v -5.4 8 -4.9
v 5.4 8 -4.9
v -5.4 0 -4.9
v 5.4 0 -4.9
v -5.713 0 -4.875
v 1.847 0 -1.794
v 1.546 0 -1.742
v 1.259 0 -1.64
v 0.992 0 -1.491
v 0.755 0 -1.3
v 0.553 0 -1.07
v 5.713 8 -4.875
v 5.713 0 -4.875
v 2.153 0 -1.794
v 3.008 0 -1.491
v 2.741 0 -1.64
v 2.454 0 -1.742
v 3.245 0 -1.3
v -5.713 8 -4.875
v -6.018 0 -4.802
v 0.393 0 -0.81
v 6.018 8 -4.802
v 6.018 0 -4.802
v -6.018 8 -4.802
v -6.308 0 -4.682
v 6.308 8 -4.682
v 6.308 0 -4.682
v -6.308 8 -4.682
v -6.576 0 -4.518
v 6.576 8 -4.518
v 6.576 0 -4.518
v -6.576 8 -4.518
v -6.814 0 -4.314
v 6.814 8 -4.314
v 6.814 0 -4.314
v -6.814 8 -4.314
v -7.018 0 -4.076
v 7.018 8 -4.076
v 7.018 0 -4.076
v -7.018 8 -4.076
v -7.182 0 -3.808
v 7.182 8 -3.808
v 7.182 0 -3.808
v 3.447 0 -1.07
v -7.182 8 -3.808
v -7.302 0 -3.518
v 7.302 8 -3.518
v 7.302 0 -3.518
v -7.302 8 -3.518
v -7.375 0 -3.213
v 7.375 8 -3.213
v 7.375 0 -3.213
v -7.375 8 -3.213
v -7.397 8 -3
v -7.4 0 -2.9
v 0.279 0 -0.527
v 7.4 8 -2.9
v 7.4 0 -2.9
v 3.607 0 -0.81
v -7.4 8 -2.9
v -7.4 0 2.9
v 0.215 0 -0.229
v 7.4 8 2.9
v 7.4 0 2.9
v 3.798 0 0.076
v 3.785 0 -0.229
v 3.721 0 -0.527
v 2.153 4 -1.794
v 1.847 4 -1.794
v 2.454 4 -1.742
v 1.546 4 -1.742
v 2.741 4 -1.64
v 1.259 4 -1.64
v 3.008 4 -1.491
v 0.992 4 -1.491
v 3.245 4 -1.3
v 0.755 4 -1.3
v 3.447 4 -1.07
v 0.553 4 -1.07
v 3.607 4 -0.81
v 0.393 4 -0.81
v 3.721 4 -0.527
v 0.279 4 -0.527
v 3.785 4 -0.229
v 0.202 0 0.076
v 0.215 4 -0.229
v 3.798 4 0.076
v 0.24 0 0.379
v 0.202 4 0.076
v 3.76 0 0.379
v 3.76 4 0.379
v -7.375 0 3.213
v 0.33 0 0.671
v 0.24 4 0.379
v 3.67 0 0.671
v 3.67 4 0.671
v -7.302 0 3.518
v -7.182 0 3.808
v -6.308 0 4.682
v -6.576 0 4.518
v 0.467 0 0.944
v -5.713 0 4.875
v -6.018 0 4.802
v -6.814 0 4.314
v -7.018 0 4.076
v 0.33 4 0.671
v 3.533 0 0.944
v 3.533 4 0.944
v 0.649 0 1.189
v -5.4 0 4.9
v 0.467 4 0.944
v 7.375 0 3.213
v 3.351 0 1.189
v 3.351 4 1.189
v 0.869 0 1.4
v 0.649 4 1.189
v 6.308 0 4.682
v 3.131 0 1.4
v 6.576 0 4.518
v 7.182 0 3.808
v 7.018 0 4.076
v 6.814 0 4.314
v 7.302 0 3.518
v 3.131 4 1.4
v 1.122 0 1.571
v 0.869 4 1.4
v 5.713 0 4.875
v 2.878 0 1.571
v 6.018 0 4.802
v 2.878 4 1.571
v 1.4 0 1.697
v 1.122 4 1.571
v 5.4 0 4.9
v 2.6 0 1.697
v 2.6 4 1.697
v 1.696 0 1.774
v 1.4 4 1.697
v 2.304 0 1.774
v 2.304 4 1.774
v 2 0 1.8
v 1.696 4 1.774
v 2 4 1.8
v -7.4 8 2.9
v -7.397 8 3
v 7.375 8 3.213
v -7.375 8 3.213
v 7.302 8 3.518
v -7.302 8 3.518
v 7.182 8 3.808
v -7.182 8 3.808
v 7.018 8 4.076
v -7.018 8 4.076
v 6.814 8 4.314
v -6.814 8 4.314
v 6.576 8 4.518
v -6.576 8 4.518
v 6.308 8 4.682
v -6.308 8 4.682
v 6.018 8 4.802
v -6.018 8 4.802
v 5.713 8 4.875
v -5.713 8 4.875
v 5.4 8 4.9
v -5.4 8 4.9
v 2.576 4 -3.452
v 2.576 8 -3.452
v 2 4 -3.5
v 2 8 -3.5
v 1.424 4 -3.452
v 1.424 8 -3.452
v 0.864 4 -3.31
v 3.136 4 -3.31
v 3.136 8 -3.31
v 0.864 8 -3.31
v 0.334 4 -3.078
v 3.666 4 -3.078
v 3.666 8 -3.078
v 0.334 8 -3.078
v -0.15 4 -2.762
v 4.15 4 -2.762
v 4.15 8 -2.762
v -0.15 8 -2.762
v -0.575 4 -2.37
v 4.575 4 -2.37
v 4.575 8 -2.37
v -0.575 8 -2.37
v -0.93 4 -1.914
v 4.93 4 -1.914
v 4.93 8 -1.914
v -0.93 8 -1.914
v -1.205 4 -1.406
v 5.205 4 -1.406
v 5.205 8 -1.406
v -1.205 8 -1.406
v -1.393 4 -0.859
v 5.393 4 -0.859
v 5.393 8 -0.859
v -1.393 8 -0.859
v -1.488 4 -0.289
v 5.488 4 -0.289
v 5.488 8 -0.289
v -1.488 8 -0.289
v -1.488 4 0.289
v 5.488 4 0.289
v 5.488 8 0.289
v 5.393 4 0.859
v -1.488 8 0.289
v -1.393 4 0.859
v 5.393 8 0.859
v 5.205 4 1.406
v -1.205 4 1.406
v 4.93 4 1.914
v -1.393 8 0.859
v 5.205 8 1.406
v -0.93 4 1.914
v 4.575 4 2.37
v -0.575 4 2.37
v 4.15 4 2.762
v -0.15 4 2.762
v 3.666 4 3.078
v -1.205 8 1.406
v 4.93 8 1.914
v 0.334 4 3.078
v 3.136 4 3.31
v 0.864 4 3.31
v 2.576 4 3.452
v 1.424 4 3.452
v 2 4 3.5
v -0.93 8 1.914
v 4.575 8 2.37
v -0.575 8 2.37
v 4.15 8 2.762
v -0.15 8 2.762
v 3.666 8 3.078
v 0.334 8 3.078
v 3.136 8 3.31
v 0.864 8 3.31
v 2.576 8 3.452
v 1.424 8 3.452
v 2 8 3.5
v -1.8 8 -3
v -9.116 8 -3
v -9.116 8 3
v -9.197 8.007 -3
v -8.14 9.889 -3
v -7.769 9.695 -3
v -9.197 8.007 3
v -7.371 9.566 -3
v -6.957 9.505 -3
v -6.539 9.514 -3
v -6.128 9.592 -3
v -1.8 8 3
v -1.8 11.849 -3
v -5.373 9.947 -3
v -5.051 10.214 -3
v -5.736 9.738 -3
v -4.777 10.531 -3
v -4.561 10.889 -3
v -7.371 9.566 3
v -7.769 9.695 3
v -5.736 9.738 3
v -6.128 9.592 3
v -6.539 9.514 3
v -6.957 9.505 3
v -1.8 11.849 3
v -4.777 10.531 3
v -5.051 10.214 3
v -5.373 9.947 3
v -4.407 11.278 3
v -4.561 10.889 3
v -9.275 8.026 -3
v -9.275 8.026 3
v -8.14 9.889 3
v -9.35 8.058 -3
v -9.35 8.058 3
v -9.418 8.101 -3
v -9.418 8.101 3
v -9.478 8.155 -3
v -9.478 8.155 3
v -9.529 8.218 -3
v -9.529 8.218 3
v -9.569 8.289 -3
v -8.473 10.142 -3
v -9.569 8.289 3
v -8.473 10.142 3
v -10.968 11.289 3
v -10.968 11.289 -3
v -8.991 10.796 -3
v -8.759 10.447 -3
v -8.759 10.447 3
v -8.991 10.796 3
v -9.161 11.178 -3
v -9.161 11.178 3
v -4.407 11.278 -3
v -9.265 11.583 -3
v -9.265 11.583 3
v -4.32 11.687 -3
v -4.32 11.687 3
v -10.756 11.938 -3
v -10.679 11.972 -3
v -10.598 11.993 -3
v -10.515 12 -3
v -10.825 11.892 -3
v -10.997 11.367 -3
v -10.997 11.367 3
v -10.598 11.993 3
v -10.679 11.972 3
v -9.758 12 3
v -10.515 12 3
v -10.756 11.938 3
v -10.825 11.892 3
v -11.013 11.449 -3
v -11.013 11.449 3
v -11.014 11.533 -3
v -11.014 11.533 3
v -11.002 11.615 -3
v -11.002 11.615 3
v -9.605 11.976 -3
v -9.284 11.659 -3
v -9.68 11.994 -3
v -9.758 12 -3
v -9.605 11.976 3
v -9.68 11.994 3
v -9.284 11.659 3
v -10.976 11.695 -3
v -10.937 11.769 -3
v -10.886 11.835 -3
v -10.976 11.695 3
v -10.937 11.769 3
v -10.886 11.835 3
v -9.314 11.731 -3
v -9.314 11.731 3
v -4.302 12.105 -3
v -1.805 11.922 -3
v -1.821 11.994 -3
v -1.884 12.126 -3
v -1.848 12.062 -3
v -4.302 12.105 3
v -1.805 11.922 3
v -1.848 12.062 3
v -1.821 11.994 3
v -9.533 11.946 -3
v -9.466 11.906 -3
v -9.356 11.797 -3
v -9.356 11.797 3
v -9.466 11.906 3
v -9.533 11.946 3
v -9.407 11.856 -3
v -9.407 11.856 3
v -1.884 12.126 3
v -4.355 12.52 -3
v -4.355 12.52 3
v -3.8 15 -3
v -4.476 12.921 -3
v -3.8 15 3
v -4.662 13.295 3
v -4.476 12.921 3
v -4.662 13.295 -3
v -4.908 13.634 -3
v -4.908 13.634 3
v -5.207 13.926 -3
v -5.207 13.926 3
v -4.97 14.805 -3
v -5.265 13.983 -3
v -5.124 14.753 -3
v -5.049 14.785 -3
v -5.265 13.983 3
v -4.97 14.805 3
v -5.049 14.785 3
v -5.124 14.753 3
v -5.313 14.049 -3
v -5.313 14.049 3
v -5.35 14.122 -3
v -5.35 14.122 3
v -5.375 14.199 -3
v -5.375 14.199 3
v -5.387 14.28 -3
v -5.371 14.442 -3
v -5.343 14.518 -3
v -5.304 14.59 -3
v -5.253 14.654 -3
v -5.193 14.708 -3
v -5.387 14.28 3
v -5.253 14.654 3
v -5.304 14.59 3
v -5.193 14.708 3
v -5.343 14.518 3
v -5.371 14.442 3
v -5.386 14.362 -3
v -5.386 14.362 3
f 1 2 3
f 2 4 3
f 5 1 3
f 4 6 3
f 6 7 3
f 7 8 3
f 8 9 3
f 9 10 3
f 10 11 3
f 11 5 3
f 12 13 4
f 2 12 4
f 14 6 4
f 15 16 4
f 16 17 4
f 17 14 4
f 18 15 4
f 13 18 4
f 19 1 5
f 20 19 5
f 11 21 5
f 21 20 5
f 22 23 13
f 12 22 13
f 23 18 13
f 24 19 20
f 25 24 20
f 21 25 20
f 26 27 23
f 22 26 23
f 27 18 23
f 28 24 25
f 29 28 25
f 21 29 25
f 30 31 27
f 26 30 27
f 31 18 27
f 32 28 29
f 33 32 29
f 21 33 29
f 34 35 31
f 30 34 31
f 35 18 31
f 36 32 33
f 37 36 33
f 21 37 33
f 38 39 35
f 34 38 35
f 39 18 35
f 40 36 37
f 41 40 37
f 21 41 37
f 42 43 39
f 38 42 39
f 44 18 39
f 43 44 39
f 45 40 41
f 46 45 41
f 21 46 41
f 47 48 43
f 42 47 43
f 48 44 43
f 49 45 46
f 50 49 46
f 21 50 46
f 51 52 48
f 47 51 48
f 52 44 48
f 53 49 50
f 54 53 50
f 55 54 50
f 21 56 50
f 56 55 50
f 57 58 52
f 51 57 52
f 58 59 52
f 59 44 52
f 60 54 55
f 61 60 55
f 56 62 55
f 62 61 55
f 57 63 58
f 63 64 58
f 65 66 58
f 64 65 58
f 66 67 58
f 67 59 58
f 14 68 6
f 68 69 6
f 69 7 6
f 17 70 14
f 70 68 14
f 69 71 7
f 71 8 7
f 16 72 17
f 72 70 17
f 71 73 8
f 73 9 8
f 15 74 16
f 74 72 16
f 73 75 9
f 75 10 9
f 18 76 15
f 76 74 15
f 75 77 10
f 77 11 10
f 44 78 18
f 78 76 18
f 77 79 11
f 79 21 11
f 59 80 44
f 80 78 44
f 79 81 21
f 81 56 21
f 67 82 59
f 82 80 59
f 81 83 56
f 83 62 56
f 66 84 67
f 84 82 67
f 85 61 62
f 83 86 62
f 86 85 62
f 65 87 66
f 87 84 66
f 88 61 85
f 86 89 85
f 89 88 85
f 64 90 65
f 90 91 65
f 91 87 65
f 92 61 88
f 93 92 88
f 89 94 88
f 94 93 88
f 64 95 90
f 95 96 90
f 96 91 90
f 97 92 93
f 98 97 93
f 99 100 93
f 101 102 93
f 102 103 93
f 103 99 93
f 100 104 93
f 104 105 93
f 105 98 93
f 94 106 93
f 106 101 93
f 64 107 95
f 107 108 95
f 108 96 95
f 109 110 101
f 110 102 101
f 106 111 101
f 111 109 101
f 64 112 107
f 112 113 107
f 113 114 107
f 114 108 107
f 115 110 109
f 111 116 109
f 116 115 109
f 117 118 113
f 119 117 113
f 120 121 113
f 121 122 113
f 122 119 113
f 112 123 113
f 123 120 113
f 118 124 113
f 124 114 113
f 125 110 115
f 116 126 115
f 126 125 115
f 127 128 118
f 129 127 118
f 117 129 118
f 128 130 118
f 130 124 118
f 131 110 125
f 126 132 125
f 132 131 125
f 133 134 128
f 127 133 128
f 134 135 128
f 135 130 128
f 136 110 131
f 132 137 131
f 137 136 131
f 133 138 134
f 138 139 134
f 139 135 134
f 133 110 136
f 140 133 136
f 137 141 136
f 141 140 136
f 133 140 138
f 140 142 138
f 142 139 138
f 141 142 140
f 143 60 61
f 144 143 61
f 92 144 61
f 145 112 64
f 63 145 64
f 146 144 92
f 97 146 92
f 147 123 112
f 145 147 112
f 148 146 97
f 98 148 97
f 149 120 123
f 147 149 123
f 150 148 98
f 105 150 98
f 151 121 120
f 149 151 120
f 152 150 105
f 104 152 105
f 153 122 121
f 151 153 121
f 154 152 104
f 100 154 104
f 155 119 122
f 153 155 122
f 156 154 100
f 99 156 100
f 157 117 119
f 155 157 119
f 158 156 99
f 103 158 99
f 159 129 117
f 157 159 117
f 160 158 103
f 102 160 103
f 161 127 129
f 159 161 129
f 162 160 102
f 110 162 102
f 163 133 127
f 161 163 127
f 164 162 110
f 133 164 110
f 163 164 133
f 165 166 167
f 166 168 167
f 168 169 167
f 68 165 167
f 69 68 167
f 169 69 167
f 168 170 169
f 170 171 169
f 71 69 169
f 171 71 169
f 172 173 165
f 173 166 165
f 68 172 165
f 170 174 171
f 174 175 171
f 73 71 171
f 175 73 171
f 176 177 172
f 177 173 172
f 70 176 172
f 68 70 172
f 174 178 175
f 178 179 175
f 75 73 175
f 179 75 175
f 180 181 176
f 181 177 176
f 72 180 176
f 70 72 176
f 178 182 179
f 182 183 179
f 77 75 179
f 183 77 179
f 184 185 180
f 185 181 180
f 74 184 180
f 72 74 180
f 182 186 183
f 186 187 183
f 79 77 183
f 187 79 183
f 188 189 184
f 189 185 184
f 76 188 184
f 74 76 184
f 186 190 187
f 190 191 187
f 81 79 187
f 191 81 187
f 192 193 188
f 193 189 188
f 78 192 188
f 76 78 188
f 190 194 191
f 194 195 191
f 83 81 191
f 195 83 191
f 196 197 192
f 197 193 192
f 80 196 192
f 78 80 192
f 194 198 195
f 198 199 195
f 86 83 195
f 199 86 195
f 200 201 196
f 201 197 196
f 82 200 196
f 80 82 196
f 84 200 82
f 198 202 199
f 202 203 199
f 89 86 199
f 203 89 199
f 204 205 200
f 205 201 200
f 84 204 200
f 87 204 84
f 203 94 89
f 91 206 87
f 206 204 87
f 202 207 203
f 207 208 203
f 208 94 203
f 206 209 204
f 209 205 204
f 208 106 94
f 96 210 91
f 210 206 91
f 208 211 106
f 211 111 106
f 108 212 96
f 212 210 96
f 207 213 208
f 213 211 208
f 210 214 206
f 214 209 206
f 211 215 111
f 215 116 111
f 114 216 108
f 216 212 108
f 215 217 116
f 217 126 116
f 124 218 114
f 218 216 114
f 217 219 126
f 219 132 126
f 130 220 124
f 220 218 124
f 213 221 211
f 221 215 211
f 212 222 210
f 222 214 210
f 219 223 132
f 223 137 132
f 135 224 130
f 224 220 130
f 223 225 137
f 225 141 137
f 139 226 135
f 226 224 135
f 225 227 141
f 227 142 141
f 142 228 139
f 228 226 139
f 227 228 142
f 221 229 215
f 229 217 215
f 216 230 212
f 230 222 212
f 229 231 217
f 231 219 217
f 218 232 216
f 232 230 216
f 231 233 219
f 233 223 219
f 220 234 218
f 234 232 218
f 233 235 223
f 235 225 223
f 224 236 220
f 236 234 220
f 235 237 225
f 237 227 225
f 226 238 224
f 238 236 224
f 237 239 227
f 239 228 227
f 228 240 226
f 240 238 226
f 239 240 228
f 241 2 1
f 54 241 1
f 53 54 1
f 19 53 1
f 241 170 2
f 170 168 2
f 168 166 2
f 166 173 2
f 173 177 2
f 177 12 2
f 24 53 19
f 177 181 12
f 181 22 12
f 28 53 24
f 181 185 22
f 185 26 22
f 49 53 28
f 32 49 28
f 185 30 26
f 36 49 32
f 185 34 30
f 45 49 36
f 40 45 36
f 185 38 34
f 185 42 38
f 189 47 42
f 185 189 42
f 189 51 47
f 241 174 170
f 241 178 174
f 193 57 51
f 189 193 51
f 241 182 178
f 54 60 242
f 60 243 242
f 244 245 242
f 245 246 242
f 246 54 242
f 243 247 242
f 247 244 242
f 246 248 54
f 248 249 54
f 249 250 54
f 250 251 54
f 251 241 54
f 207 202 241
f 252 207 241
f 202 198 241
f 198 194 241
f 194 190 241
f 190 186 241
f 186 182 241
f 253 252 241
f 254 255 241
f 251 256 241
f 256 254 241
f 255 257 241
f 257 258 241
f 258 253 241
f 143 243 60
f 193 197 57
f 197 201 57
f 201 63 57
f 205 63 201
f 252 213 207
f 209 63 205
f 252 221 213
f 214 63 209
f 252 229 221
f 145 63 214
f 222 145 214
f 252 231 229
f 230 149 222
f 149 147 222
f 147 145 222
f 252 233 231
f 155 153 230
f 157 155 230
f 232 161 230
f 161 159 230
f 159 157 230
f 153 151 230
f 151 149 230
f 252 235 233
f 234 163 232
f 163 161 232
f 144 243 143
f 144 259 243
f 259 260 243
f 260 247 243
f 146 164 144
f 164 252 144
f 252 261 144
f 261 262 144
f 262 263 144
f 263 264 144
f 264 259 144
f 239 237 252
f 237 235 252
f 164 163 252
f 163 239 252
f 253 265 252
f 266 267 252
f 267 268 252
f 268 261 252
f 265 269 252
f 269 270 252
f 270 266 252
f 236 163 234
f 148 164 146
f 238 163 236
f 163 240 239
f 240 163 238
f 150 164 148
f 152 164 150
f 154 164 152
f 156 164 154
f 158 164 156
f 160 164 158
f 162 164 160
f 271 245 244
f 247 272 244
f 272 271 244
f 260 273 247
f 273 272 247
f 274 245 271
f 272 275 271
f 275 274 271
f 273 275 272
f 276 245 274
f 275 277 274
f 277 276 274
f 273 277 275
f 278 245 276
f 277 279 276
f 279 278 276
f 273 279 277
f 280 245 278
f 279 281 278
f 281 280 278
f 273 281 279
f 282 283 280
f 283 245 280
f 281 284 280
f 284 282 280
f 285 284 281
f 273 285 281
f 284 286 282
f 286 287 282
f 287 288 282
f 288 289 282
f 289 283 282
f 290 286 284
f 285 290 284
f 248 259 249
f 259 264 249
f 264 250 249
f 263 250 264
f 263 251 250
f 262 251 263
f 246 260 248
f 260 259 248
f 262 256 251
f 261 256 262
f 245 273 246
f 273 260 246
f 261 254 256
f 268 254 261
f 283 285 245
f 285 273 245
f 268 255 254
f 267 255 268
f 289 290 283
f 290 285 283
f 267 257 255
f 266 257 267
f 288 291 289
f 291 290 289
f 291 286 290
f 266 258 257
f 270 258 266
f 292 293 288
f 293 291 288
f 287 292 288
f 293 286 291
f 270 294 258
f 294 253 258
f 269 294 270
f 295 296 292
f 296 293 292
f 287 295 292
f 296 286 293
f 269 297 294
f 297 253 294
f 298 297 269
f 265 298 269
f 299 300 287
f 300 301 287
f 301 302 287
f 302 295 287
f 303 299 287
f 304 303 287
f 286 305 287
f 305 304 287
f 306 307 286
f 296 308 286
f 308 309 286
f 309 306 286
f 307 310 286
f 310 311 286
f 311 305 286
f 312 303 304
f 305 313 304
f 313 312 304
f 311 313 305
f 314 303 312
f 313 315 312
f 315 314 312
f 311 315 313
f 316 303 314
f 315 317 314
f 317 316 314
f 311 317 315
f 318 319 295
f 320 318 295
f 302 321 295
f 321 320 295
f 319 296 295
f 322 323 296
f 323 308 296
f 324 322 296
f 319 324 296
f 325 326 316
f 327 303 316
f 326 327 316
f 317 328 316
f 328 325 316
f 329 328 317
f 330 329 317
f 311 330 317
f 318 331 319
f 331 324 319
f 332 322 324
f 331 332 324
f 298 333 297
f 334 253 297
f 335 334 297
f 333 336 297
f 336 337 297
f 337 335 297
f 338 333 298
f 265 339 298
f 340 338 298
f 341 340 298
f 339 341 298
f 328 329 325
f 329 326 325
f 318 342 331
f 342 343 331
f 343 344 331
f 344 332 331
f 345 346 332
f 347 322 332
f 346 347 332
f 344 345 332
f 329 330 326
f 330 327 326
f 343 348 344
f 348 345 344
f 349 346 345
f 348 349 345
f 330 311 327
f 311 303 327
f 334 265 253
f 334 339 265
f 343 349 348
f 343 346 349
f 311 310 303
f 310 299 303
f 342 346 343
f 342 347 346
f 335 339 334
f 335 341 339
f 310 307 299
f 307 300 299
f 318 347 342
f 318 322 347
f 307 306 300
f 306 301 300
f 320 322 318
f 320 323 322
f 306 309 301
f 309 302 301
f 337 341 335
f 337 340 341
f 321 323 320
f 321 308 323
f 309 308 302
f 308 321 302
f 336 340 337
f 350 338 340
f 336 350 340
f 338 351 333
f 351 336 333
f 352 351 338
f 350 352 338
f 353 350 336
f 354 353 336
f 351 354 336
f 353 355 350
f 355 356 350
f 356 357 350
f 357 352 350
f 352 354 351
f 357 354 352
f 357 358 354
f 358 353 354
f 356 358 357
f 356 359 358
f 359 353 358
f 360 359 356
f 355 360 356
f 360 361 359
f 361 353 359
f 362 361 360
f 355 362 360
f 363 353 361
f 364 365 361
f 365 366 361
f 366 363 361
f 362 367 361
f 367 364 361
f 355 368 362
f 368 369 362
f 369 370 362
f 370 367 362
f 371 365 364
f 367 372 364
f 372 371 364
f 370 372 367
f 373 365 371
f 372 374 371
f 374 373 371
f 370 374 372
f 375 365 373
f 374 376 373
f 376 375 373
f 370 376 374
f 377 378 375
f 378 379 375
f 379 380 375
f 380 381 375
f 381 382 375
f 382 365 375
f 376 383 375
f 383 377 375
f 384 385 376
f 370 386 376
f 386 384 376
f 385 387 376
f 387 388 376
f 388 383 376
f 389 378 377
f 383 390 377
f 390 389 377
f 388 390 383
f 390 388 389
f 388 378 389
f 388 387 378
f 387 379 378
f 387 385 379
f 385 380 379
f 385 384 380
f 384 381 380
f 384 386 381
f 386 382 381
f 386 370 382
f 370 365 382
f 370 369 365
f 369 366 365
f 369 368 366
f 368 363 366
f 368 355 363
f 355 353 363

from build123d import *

# Parameters (mm, degrees)
BOSS_EXTRUDE1_DEPTH      = 8
SKETCH2_R                = 3.5
CUT_EXTRUDE1_DEPTH       = 4
SKETCH3_R                = 1.8
CUT_EXTRUDE2_DEPTH       = 4
BOSS_EXTRUDE2_DEPTH      = 3
BOSS_EXTRUDE2_DEPTH_BACK = 3
FILLET1_R                = 0.5


with BuildPart() as part:
    # Sketch1 → Boss-Extrude1 (new body)
    with BuildSketch(Plane(origin=(0, 0, 0), x_dir=(1, 0, 0), z_dir=(0, 1, 0))):
        with BuildLine():
            Line((-5.4, -4.9), (5.4, -4.9))
            ThreePointArc((5.4, -4.9), (6.814213562, -4.314213562), (7.4, -2.9))
            Line((7.4, -2.9), (7.4, 2.9))
            ThreePointArc((7.4, 2.9), (6.814213562, 4.314213562), (5.4, 4.9))
            Line((5.4, 4.9), (-5.4, 4.9))
            ThreePointArc((-5.4, 4.9), (-6.814213562, 4.314213562), (-7.4, 2.9))
            Line((-7.4, 2.9), (-7.4, -2.9))
            ThreePointArc((-7.4, -2.9), (-6.814213562, -4.314213562), (-5.4, -4.9))
        make_face()
    extrude(amount=BOSS_EXTRUDE1_DEPTH)

    # Sketch2 → Cut-Extrude1 (cut)
    with BuildSketch(Plane(origin=(0, 8, 0), x_dir=(1, 0, 0), z_dir=(0, 1, 0))):
        with Locations(Location((2, 0, 0), (0, 0, 270))):
            Circle(SKETCH2_R)
    extrude(amount=-CUT_EXTRUDE1_DEPTH, mode=Mode.SUBTRACT)

    # Sketch3 → Cut-Extrude2 (cut)
    with BuildSketch(Plane(origin=(0, 4, 0), x_dir=(1, 0, 0), z_dir=(0, 1, 0))):
        with Locations(Location((2, 0, 0), (0, 0, 270))):
            Circle(SKETCH3_R)
    extrude(amount=-CUT_EXTRUDE2_DEPTH, mode=Mode.SUBTRACT)

    # Sketch4 → Boss-Extrude2 (add, two sides: drawn at the far end of the back side and taken through both)
    with BuildSketch(Plane.XY.offset(-BOSS_EXTRUDE2_DEPTH_BACK)):
        with BuildLine():
            ThreePointArc((-9.3, 12), (-5.032233047, 10.232233047), (-6.8, 14.5))
            Line((-6.8, 14.5), (-3.8, 15))
            Line((-3.8, 15), (-1.8, 12))
            Line((-1.8, 12), (-1.8, 8))
            Line((-1.8, 8), (-7.4, 8))
            Line((-7.4, 8), (-9.434769367, 8))
            Line((-9.434769367, 8), (-11.3, 12))
            Line((-11.3, 12), (-9.3, 12))
        make_face()
    extrude(amount=BOSS_EXTRUDE2_DEPTH + BOSS_EXTRUDE2_DEPTH_BACK)

    # Fillet1
    fillet1_edges = [part.edges().sort_by_distance(p)[0] for p in [
        (-9.3, 12, 0),
        (-6.8, 14.5, 0),
        (-1.8, 12, 0),
        (-9.434769367, 8, 0),
        (-11.3, 12, 0),
    ]]
    fillet(fillet1_edges, radius=FILLET1_R)


solid = part.part
